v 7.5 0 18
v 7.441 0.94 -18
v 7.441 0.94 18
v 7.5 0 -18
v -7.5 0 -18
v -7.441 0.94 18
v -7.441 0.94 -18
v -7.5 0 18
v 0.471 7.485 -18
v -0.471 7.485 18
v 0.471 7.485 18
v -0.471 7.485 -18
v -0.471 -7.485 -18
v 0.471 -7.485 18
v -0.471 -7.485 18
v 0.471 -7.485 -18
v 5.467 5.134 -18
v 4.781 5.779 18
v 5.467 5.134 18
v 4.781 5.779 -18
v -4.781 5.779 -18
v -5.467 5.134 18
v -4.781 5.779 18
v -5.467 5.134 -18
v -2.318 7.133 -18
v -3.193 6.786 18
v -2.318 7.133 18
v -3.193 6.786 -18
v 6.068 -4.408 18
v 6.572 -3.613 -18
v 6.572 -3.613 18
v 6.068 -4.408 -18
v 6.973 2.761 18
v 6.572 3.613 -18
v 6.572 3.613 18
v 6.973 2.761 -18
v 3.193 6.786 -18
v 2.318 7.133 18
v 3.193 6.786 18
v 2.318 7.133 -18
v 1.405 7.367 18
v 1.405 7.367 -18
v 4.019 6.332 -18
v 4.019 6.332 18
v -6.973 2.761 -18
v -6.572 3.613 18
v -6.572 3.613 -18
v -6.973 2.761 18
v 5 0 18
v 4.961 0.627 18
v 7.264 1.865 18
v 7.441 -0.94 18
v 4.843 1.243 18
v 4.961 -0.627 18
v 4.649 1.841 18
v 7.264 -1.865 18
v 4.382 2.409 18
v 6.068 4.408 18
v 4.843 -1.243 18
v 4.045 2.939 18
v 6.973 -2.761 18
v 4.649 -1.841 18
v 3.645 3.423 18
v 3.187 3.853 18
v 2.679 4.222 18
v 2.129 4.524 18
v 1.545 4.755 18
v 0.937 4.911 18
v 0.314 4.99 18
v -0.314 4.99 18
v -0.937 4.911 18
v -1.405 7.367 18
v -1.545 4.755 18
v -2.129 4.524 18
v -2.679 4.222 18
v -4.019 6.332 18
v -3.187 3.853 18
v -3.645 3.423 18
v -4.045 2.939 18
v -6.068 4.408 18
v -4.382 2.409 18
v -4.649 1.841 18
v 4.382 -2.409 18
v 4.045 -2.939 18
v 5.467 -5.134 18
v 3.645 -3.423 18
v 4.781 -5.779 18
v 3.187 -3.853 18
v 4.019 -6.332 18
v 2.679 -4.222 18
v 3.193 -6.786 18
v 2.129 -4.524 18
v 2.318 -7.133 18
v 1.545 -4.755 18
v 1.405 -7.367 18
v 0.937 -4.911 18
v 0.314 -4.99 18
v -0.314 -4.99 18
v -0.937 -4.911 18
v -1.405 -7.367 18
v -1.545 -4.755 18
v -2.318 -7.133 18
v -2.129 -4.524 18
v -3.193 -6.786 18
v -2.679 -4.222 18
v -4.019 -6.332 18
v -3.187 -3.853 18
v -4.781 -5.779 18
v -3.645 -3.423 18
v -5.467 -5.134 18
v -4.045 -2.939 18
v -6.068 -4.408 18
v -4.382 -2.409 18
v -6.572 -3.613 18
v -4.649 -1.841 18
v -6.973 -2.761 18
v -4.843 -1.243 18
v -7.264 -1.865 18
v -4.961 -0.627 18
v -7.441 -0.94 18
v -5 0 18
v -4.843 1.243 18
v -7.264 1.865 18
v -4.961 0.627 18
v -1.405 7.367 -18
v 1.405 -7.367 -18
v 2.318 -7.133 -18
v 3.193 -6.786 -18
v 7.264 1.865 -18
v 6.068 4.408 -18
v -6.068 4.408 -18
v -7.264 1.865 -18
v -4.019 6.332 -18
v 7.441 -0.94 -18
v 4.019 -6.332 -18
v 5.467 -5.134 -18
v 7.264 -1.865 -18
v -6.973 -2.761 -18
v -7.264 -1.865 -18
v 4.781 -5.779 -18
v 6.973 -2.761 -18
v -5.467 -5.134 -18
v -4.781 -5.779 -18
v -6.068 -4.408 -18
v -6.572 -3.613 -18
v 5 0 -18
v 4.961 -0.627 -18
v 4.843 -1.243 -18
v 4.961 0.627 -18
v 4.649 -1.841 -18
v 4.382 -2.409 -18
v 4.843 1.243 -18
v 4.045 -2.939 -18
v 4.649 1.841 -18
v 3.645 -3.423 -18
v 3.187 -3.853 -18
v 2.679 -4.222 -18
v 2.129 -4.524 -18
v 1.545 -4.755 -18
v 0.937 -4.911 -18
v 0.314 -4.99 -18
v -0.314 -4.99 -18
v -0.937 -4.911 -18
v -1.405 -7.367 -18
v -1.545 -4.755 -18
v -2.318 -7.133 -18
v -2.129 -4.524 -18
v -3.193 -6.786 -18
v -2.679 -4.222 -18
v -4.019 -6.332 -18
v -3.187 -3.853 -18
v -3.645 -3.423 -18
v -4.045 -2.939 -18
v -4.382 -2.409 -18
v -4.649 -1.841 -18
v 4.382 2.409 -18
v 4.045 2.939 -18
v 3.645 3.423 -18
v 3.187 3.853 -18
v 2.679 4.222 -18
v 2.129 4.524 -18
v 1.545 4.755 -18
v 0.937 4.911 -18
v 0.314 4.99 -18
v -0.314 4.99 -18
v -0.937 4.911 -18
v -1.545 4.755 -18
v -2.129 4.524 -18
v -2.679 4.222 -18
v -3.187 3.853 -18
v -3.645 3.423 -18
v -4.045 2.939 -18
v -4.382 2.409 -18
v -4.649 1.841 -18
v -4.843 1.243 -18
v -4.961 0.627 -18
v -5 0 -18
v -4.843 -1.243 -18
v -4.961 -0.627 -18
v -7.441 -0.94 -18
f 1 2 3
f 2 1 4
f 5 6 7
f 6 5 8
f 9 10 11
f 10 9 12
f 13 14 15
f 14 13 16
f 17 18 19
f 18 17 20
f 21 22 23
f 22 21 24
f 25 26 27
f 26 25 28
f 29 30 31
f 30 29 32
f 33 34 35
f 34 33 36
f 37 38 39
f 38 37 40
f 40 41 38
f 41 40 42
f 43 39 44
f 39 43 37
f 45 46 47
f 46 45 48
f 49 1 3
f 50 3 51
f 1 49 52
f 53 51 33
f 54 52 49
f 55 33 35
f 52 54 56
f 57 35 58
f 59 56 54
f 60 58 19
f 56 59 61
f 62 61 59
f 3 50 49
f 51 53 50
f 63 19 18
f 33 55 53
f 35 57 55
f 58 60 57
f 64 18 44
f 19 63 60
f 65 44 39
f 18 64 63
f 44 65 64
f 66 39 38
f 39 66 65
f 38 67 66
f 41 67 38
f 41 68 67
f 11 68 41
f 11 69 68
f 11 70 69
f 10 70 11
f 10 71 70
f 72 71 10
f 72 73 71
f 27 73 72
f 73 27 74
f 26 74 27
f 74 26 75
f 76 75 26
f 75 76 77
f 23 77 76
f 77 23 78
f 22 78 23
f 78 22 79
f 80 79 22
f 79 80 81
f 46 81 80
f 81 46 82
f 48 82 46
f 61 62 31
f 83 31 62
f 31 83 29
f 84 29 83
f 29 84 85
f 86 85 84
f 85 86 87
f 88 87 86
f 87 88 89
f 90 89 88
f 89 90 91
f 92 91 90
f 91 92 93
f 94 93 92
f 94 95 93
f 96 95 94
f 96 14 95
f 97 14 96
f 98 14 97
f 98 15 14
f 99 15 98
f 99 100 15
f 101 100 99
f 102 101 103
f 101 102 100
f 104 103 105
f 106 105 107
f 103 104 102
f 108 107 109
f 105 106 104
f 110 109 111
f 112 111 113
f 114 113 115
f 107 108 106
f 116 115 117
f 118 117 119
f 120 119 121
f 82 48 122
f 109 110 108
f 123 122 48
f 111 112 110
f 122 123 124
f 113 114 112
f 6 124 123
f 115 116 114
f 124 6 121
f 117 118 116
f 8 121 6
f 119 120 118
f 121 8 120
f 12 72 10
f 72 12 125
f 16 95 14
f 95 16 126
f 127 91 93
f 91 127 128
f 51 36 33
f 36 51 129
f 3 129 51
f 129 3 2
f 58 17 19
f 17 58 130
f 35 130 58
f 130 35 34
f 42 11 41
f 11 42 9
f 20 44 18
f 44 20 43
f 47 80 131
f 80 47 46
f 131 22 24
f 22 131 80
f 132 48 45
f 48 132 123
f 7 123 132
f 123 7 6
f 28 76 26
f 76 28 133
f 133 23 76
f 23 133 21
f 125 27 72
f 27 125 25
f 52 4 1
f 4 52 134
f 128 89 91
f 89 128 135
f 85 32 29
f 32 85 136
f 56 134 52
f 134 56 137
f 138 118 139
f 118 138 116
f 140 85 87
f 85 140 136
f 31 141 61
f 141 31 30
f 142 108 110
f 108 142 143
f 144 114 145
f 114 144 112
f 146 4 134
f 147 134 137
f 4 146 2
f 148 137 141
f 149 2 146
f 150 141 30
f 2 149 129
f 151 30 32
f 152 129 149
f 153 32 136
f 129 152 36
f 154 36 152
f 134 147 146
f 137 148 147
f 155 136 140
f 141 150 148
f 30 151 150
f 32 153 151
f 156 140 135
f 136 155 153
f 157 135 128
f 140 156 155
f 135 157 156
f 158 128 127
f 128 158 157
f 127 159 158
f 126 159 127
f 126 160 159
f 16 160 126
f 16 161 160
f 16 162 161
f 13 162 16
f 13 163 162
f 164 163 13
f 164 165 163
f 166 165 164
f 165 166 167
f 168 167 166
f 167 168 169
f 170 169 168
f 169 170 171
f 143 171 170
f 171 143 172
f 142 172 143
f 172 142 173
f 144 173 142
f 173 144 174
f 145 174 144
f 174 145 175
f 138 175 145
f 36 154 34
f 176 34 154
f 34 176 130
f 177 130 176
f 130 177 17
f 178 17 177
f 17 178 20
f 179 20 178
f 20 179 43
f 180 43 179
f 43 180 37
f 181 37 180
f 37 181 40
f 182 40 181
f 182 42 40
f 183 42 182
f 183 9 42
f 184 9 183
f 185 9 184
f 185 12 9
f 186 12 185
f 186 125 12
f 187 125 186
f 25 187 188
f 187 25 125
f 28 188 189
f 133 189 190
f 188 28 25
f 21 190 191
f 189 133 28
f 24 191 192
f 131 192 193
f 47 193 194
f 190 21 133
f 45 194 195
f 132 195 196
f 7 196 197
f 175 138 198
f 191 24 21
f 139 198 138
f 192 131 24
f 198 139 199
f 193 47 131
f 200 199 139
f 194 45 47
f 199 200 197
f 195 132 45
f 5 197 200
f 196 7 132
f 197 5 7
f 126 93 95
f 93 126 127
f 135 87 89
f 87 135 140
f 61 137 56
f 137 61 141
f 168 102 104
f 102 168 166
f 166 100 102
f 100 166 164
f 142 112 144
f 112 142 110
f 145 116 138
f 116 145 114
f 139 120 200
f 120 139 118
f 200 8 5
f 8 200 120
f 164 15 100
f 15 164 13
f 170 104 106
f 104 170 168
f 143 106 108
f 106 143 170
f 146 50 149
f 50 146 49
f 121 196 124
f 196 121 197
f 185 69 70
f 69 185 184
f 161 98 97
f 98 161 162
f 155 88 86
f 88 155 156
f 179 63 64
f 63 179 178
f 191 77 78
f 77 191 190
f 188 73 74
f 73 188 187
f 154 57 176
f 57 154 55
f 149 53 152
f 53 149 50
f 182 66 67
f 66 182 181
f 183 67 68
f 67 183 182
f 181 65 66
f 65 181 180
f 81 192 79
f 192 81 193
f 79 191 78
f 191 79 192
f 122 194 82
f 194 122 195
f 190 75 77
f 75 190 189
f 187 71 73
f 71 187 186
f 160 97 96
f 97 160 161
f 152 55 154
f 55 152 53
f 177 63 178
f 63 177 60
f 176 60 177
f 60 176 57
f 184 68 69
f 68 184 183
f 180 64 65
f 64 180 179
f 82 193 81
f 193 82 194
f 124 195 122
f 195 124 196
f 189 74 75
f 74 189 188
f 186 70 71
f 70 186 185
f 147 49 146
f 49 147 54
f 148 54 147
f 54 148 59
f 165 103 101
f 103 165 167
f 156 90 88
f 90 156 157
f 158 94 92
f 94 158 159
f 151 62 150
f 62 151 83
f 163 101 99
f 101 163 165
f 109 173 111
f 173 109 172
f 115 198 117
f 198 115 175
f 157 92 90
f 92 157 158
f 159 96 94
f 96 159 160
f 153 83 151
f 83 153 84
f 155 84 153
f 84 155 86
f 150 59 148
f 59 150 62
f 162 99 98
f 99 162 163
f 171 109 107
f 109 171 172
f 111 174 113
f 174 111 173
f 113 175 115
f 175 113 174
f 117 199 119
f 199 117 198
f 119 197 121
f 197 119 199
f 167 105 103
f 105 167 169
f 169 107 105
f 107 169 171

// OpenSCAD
$fn = 50;


difference() {
	union() {
		translate(v = [0, 0, -18.0000000000]) {
			cylinder(h = 36, r = 7.5000000000);
		}
	}
	union() {
		translate(v = [0, 0, -100.0000000000]) {
			cylinder(h = 200, r = 5);
		}
	}
}
